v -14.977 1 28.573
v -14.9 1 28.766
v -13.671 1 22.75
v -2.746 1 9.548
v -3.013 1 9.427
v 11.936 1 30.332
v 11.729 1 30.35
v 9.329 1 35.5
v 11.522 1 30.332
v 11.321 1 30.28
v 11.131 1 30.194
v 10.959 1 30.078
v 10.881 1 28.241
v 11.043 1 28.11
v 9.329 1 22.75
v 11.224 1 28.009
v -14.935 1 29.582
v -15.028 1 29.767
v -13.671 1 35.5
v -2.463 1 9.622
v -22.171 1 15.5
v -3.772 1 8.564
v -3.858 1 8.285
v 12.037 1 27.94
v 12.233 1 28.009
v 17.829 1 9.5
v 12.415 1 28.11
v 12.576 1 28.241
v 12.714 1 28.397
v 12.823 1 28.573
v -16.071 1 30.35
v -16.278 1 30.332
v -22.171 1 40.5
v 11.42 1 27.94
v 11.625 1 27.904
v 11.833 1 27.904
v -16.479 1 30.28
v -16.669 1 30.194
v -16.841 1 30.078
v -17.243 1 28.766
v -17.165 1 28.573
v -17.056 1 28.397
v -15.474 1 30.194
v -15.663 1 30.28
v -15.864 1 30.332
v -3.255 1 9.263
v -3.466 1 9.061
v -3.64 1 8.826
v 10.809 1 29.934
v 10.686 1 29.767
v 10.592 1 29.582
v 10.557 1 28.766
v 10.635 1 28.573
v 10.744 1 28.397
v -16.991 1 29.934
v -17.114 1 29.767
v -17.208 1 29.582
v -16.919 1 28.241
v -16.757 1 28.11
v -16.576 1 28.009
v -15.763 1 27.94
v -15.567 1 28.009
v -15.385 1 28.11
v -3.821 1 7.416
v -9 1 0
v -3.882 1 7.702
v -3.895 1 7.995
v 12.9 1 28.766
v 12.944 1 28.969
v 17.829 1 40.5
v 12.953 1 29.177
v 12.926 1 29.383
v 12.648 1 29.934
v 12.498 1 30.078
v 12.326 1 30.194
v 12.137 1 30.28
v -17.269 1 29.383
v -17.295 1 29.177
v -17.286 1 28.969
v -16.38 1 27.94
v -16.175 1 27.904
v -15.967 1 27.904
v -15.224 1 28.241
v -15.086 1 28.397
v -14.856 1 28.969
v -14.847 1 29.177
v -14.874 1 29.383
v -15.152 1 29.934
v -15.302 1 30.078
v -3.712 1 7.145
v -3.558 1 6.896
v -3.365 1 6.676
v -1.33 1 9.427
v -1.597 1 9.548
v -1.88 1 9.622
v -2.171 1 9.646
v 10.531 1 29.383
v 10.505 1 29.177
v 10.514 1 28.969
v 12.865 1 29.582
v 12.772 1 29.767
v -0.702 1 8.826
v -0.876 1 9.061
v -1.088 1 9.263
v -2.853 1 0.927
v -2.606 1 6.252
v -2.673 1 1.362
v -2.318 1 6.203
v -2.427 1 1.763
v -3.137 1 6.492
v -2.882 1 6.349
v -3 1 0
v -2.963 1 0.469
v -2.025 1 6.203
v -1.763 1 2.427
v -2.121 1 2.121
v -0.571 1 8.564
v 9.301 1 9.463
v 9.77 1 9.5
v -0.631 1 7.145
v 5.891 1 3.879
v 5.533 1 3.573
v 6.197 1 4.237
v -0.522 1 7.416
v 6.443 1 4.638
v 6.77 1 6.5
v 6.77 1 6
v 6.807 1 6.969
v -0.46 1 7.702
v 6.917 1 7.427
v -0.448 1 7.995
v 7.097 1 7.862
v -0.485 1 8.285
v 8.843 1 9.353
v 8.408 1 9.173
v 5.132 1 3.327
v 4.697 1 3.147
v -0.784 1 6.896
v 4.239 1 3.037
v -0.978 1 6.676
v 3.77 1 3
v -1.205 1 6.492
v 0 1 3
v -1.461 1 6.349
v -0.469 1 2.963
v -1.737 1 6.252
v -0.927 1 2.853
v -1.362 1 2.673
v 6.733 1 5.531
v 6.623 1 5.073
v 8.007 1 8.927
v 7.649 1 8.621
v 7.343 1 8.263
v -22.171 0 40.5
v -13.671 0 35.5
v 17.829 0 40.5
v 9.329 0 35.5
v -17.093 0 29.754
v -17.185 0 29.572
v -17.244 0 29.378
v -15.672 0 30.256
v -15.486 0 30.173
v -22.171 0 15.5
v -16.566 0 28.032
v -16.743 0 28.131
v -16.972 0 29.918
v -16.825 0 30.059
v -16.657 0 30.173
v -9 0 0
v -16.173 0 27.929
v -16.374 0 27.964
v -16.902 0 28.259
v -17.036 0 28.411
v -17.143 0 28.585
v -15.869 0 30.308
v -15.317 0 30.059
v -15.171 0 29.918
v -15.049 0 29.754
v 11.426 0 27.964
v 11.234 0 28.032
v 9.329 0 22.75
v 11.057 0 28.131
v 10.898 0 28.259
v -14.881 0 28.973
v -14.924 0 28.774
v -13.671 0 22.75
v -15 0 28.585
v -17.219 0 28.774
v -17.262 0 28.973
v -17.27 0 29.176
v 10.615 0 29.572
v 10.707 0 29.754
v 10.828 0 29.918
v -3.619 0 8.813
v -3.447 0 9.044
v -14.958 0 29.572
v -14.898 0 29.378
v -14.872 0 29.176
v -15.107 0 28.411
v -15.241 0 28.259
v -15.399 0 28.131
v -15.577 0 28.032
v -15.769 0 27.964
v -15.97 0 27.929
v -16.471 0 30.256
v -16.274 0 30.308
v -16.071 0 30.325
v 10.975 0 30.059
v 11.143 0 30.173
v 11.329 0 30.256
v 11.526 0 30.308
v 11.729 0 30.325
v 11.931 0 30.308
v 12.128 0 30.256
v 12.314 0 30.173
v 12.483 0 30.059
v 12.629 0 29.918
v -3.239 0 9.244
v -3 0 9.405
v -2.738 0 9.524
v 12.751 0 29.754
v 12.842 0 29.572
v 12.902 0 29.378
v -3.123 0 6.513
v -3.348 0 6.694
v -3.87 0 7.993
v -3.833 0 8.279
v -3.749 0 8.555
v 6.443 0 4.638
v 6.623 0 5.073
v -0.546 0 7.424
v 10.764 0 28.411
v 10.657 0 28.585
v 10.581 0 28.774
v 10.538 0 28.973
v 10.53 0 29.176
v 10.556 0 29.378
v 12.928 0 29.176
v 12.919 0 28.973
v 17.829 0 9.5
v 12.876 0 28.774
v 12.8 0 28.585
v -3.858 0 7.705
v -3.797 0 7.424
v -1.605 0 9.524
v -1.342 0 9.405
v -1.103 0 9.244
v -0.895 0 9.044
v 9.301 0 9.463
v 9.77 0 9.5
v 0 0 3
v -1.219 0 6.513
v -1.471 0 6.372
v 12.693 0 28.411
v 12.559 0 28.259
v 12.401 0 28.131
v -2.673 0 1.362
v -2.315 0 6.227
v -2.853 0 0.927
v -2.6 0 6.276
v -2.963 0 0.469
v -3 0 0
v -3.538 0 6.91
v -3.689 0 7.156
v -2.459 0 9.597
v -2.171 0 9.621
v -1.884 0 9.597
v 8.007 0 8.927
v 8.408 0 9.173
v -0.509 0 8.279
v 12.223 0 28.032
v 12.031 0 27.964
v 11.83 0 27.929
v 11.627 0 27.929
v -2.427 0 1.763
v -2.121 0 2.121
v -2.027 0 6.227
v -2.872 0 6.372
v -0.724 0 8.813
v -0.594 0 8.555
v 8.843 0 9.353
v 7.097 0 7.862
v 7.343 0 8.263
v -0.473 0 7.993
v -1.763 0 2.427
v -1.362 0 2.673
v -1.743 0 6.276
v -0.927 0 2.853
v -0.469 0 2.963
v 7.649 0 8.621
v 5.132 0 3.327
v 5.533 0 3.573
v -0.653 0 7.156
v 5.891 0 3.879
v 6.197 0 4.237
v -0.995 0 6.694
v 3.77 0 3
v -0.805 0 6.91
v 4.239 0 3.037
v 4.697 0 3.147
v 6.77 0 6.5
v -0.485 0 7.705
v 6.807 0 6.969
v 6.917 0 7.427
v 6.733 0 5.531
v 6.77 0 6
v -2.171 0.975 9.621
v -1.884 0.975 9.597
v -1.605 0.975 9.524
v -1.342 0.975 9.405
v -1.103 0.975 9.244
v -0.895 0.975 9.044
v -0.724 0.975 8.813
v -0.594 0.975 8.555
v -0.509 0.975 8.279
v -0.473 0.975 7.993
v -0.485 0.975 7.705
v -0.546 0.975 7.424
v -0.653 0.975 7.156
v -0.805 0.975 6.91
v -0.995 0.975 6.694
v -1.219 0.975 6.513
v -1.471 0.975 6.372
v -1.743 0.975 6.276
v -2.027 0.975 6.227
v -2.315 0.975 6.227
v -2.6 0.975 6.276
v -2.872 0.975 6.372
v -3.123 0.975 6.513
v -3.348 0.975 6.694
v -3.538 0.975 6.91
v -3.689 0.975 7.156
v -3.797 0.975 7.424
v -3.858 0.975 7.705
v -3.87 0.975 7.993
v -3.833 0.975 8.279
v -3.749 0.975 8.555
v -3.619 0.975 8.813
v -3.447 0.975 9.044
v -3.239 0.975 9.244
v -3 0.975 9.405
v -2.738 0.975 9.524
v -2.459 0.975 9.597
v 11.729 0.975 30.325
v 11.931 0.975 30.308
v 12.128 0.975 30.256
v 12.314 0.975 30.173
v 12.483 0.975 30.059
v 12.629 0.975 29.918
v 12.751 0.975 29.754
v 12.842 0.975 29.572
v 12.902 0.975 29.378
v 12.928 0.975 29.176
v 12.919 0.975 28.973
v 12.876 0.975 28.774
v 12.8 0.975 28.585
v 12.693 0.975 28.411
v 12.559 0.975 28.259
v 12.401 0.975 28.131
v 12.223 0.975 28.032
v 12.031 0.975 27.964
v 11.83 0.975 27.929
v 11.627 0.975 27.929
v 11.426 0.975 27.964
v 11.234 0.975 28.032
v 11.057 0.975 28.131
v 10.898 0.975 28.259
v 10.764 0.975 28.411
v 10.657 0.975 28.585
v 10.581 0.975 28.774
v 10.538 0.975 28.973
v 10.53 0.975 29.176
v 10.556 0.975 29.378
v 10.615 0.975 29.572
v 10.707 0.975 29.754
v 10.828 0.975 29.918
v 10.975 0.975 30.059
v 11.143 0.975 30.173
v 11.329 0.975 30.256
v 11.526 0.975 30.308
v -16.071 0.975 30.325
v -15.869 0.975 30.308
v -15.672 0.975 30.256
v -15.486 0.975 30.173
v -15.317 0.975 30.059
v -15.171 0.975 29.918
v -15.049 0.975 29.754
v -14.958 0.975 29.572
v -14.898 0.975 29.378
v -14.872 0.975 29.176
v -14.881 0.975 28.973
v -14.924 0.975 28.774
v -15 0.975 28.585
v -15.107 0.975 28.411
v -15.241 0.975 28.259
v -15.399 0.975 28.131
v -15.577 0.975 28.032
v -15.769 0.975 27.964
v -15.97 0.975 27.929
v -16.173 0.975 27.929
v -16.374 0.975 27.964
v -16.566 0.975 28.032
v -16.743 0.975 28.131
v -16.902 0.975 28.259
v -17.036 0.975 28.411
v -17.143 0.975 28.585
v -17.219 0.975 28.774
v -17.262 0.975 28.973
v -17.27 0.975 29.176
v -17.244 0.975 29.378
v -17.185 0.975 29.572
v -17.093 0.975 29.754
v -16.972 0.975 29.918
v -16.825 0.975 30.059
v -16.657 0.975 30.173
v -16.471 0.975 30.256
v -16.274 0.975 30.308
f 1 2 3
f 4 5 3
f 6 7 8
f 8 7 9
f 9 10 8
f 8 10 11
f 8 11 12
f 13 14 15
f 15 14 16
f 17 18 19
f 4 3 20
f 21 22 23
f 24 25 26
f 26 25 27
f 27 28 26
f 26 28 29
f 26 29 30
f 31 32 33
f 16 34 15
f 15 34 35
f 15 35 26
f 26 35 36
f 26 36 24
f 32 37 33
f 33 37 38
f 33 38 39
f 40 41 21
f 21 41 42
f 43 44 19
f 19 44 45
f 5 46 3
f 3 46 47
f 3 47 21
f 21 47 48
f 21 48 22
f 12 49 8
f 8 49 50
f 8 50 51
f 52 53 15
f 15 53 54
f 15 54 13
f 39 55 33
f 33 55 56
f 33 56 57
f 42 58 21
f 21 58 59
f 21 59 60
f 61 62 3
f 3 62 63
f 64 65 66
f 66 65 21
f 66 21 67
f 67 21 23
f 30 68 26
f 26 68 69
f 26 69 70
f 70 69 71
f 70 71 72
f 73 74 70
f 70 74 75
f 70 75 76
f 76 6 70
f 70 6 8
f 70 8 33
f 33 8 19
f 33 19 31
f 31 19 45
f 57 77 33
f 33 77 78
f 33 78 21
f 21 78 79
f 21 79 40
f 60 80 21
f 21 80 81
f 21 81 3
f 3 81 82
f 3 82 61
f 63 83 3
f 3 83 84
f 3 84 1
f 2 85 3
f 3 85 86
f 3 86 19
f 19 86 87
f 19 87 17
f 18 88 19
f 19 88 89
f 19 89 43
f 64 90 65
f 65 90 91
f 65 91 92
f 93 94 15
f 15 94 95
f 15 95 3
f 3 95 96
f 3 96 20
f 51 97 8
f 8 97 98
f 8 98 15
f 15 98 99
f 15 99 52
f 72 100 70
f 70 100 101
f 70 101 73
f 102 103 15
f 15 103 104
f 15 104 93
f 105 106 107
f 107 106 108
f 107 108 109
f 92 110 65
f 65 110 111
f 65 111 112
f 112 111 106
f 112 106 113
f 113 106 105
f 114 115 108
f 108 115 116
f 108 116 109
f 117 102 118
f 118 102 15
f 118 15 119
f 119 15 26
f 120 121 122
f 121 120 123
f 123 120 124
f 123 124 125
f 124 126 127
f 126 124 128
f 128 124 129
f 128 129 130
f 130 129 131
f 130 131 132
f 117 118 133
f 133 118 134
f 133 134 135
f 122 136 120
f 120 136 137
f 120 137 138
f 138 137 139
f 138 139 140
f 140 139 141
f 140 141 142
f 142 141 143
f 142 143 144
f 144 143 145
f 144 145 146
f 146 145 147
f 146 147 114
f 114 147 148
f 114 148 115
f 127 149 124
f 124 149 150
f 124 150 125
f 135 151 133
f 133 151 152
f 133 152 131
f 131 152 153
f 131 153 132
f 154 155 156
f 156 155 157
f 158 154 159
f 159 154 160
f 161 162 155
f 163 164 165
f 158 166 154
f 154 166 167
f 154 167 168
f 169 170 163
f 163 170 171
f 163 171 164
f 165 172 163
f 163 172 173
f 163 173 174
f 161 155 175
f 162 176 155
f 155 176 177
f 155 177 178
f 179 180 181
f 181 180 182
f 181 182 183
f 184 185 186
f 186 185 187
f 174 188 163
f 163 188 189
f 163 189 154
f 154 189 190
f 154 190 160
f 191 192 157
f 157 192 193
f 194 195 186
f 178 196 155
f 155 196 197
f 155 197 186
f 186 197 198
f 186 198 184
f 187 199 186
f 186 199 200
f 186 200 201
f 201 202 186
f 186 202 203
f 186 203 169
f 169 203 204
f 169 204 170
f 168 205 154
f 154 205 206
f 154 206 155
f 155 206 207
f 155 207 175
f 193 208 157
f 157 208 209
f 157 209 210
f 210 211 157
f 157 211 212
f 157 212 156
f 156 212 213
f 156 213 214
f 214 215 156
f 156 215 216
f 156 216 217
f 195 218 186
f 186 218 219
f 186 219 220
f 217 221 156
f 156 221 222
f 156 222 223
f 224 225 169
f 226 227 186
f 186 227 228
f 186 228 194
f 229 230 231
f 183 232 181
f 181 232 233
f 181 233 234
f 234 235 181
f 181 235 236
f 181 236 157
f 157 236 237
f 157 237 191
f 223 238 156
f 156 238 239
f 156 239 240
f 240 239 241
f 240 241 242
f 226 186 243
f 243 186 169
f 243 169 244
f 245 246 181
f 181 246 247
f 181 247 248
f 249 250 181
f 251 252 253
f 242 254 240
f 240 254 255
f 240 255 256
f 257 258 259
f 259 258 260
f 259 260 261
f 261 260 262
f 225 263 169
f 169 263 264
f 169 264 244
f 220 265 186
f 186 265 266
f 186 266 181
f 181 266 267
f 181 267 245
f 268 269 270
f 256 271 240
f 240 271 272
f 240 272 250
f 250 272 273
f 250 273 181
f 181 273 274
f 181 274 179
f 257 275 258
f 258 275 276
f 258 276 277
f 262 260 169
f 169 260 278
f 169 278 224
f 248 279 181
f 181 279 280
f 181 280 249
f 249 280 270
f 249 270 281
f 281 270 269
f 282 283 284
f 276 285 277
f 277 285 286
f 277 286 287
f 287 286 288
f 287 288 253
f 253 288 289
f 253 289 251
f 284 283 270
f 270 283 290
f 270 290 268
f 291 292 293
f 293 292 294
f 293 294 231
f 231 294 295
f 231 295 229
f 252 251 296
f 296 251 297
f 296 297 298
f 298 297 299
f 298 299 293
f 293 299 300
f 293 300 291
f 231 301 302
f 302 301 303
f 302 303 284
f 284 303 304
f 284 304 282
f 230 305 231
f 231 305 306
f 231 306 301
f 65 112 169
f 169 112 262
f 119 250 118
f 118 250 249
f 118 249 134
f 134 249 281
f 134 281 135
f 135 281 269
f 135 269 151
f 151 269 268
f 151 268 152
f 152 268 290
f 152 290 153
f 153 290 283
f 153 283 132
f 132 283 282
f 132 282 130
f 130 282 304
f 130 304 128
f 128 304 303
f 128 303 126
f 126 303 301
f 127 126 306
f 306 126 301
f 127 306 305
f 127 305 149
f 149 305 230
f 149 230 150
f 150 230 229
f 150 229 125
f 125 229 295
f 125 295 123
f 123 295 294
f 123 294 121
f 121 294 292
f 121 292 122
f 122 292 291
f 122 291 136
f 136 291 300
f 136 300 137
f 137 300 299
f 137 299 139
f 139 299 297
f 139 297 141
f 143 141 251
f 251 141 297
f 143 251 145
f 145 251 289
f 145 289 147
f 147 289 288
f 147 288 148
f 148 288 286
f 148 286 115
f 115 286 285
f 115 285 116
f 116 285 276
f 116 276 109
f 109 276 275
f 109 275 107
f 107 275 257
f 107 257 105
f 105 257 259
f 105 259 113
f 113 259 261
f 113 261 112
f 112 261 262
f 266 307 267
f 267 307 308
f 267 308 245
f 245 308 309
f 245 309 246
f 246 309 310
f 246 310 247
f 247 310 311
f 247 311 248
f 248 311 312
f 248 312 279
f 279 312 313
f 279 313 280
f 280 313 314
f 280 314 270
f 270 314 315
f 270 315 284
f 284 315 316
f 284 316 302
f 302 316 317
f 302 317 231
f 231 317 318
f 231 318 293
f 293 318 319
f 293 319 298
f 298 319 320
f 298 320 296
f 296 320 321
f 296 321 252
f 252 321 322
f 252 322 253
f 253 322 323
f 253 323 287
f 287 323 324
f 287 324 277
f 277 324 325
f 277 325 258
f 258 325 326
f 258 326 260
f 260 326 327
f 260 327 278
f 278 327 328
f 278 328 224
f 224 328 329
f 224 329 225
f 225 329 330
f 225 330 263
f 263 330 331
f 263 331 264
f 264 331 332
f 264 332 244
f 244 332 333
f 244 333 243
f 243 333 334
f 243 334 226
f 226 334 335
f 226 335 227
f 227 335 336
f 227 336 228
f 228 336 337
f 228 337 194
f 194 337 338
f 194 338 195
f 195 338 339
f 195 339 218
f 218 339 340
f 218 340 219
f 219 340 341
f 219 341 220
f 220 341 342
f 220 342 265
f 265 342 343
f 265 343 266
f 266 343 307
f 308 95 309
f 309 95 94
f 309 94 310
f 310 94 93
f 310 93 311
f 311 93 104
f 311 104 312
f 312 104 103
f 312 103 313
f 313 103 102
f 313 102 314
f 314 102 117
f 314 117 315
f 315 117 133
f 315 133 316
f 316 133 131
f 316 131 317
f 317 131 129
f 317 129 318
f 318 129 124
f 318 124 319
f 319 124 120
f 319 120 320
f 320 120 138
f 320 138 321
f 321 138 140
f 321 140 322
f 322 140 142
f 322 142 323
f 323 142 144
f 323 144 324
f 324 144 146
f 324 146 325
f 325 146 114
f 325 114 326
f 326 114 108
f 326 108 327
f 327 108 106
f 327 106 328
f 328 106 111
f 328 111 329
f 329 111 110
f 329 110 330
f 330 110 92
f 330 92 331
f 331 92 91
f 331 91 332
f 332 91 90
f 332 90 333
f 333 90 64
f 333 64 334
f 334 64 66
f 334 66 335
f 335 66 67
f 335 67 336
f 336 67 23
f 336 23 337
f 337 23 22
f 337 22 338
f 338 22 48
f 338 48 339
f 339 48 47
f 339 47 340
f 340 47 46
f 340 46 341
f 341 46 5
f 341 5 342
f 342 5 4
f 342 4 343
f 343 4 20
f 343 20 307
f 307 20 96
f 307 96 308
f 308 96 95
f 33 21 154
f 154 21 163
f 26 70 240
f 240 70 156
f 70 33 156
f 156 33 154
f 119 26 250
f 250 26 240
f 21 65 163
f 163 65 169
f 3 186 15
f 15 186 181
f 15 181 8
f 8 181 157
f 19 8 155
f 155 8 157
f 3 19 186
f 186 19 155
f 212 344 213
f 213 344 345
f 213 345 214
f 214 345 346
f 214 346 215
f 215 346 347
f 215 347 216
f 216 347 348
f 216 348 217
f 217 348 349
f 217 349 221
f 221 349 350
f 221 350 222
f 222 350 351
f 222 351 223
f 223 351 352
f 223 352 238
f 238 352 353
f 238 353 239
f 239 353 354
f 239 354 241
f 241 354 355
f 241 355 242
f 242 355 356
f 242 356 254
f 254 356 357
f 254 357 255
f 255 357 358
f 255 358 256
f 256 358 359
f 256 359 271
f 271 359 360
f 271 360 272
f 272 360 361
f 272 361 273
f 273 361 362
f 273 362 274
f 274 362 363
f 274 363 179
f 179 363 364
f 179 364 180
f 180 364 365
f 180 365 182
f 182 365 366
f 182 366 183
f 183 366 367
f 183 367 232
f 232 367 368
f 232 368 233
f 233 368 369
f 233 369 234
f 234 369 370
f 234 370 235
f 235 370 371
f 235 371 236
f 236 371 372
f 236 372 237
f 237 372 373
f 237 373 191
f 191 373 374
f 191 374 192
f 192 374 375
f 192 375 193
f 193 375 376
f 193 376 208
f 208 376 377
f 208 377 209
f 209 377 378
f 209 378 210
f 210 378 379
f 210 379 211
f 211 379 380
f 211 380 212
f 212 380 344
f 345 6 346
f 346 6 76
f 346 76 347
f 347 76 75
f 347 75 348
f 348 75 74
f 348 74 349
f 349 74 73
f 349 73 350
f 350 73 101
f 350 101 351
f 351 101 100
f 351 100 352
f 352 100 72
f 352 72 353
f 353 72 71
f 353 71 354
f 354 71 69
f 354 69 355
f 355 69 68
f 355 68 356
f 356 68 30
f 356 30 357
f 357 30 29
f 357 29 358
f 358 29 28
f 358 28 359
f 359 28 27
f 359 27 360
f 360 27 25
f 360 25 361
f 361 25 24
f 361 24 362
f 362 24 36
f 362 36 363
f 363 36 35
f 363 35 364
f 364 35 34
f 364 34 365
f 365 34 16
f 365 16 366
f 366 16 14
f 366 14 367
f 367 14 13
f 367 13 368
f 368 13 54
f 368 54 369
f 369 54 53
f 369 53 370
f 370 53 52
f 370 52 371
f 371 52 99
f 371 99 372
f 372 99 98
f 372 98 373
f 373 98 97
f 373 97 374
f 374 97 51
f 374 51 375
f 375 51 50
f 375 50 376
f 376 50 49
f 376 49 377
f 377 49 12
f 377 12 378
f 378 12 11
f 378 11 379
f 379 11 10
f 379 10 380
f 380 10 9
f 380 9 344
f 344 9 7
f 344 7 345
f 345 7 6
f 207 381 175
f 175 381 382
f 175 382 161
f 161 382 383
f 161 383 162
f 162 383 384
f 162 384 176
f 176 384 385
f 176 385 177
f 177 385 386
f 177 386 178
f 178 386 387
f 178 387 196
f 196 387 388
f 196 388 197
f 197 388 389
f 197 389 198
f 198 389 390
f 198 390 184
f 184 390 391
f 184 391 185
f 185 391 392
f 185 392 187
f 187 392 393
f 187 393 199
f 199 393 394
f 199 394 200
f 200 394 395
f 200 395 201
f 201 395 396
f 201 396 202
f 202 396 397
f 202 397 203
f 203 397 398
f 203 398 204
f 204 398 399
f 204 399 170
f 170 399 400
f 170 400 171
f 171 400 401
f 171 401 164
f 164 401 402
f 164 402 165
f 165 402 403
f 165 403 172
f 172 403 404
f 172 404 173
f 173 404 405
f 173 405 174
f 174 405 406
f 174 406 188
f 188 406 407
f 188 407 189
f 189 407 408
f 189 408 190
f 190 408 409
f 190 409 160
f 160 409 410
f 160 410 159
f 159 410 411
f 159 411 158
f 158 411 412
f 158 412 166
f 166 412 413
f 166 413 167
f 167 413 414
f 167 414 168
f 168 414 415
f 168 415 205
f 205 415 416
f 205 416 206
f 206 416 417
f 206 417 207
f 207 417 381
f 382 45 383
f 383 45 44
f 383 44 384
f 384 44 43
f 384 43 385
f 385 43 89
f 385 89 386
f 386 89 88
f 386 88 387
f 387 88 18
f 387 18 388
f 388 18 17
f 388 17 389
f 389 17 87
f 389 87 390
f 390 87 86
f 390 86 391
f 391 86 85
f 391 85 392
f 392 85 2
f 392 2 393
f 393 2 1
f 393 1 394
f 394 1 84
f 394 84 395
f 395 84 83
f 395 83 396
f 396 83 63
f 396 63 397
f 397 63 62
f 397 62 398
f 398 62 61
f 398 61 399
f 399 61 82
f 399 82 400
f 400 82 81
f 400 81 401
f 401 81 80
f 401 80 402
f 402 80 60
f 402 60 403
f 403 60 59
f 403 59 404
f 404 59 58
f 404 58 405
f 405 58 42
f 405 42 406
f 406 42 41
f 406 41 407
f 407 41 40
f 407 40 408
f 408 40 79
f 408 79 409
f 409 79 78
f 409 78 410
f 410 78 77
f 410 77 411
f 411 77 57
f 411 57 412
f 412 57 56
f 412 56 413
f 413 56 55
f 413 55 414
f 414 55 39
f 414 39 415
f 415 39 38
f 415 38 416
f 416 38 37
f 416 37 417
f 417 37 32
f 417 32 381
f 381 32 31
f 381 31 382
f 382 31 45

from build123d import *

# Parameters (mm, degrees)
BOSS_EXTRUDE1_DEPTH           = 1
SKETCH4_W                     = 40
SKETCH4_H                     = 25
BOSS_EXTRUDE2_DEPTH           = 1
SKETCH5_W                     = 8.058679656
SKETCH5_H                     = 6
BOSS_EXTRUDE3_DEPTH           = 1
SKETCH8_W                     = 23
SKETCH8_H                     = 12.75
CUT_EXTRUDE1_DEPTH            = 1
M2_CLEARANCE_HOLE1_AT_2_COUNT = 2
M2_CLEARANCE_HOLE1_AT_2_PITCH = 27.8


with BuildPart() as part:
    # Sketch1 → Boss-Extrude1 (new body)
    with BuildSketch(Plane(origin=(0, 0, 0), x_dir=(1, 0, 0), z_dir=(0, 1, 0))):
        with BuildLine():
            Line((-3, 0), (-9, 0))
            Line((-9, 0), (-9, -15.5))
            Line((-9, -15.5), (9.77, -15.5))
            Line((9.77, -15.5), (9.77, -9.5))
            ThreePointArc((9.77, -9.5), (7.648679656, -8.621320344), (6.77, -6.5))
            Line((6.77, -6.5), (6.77, -6))
            ThreePointArc((6.77, -6), (5.891320344, -3.878679656), (3.77, -3))
            Line((3.77, -3), (0, -3))
            ThreePointArc((0, -3), (-2.121320344, -2.121320344), (-3, 0))
        make_face()
    extrude(amount=BOSS_EXTRUDE1_DEPTH)

    # Sketch3 → M3 Clearance Hole1 (revolve, cut)
    with BuildSketch(Plane(origin=(-2.171320344, 1, 7.921320344), x_dir=(0, 0, 1), z_dir=(1, 0, 0))):
        Polygon((0, 0), (0, 1), (1.7, 1), (1.7, 0.025), (1.725, 0), align=None)
    revolve(axis=Axis((-2.171320344, 7.35, 7.921320344), (0, -1, 0)), mode=Mode.SUBTRACT)

    # Sketch4 → Boss-Extrude2 (add)
    with BuildSketch(Plane(origin=(0, 1, 0), x_dir=(1, 0, 0), z_dir=(0, 1, 0))):
        with Locations((-2.171320344, -28)):
            Rectangle(SKETCH4_W, SKETCH4_H)
    extrude(amount=-BOSS_EXTRUDE2_DEPTH)

    # Sketch5 → Boss-Extrude3 (add)
    with BuildSketch(Plane(origin=(0, 1, 0), x_dir=(1, 0, 0), z_dir=(0, 1, 0))):
        with Locations((13.799339828, -12.5)):
            Rectangle(SKETCH5_W, SKETCH5_H)
        Polygon((-9, -15.5), (-22.171320344, -15.5), (-9, 0), align=None)
    extrude(amount=-BOSS_EXTRUDE3_DEPTH)

    # Sketch8 → Cut-Extrude1 (cut)
    with BuildSketch(Plane(origin=(0, 1, 0), x_dir=(1, 0, 0), z_dir=(0, 1, 0))):
        with Locations((-2.171320344, -29.125)):
            Rectangle(SKETCH8_W, SKETCH8_H)
    extrude(amount=-CUT_EXTRUDE1_DEPTH, mode=Mode.SUBTRACT)

    # Sketch10 → M2 Clearance Hole1 (revolve, cut)
    with BuildSketch(Plane(origin=(-16.071320344, 1, 29.125), x_dir=(0, 0, 1), z_dir=(1, 0, 0))):
        Polygon((0, 0), (0, 1), (1.2, 1), (1.2, 0.025), (1.225, 0), align=None)
    m2_clearance_hole1 = revolve(axis=Axis((-16.071320344, 7.35, 29.125), (0, -1, 0)), mode=Mode.SUBTRACT)

    # M2 Clearance Hole1 at 2: M2 Clearance Hole1 ×2
    with Locations(*[(i * M2_CLEARANCE_HOLE1_AT_2_PITCH, 0, 0) for i in range(1, M2_CLEARANCE_HOLE1_AT_2_COUNT)]):
        add(m2_clearance_hole1, mode=Mode.SUBTRACT)


solid = part.part
